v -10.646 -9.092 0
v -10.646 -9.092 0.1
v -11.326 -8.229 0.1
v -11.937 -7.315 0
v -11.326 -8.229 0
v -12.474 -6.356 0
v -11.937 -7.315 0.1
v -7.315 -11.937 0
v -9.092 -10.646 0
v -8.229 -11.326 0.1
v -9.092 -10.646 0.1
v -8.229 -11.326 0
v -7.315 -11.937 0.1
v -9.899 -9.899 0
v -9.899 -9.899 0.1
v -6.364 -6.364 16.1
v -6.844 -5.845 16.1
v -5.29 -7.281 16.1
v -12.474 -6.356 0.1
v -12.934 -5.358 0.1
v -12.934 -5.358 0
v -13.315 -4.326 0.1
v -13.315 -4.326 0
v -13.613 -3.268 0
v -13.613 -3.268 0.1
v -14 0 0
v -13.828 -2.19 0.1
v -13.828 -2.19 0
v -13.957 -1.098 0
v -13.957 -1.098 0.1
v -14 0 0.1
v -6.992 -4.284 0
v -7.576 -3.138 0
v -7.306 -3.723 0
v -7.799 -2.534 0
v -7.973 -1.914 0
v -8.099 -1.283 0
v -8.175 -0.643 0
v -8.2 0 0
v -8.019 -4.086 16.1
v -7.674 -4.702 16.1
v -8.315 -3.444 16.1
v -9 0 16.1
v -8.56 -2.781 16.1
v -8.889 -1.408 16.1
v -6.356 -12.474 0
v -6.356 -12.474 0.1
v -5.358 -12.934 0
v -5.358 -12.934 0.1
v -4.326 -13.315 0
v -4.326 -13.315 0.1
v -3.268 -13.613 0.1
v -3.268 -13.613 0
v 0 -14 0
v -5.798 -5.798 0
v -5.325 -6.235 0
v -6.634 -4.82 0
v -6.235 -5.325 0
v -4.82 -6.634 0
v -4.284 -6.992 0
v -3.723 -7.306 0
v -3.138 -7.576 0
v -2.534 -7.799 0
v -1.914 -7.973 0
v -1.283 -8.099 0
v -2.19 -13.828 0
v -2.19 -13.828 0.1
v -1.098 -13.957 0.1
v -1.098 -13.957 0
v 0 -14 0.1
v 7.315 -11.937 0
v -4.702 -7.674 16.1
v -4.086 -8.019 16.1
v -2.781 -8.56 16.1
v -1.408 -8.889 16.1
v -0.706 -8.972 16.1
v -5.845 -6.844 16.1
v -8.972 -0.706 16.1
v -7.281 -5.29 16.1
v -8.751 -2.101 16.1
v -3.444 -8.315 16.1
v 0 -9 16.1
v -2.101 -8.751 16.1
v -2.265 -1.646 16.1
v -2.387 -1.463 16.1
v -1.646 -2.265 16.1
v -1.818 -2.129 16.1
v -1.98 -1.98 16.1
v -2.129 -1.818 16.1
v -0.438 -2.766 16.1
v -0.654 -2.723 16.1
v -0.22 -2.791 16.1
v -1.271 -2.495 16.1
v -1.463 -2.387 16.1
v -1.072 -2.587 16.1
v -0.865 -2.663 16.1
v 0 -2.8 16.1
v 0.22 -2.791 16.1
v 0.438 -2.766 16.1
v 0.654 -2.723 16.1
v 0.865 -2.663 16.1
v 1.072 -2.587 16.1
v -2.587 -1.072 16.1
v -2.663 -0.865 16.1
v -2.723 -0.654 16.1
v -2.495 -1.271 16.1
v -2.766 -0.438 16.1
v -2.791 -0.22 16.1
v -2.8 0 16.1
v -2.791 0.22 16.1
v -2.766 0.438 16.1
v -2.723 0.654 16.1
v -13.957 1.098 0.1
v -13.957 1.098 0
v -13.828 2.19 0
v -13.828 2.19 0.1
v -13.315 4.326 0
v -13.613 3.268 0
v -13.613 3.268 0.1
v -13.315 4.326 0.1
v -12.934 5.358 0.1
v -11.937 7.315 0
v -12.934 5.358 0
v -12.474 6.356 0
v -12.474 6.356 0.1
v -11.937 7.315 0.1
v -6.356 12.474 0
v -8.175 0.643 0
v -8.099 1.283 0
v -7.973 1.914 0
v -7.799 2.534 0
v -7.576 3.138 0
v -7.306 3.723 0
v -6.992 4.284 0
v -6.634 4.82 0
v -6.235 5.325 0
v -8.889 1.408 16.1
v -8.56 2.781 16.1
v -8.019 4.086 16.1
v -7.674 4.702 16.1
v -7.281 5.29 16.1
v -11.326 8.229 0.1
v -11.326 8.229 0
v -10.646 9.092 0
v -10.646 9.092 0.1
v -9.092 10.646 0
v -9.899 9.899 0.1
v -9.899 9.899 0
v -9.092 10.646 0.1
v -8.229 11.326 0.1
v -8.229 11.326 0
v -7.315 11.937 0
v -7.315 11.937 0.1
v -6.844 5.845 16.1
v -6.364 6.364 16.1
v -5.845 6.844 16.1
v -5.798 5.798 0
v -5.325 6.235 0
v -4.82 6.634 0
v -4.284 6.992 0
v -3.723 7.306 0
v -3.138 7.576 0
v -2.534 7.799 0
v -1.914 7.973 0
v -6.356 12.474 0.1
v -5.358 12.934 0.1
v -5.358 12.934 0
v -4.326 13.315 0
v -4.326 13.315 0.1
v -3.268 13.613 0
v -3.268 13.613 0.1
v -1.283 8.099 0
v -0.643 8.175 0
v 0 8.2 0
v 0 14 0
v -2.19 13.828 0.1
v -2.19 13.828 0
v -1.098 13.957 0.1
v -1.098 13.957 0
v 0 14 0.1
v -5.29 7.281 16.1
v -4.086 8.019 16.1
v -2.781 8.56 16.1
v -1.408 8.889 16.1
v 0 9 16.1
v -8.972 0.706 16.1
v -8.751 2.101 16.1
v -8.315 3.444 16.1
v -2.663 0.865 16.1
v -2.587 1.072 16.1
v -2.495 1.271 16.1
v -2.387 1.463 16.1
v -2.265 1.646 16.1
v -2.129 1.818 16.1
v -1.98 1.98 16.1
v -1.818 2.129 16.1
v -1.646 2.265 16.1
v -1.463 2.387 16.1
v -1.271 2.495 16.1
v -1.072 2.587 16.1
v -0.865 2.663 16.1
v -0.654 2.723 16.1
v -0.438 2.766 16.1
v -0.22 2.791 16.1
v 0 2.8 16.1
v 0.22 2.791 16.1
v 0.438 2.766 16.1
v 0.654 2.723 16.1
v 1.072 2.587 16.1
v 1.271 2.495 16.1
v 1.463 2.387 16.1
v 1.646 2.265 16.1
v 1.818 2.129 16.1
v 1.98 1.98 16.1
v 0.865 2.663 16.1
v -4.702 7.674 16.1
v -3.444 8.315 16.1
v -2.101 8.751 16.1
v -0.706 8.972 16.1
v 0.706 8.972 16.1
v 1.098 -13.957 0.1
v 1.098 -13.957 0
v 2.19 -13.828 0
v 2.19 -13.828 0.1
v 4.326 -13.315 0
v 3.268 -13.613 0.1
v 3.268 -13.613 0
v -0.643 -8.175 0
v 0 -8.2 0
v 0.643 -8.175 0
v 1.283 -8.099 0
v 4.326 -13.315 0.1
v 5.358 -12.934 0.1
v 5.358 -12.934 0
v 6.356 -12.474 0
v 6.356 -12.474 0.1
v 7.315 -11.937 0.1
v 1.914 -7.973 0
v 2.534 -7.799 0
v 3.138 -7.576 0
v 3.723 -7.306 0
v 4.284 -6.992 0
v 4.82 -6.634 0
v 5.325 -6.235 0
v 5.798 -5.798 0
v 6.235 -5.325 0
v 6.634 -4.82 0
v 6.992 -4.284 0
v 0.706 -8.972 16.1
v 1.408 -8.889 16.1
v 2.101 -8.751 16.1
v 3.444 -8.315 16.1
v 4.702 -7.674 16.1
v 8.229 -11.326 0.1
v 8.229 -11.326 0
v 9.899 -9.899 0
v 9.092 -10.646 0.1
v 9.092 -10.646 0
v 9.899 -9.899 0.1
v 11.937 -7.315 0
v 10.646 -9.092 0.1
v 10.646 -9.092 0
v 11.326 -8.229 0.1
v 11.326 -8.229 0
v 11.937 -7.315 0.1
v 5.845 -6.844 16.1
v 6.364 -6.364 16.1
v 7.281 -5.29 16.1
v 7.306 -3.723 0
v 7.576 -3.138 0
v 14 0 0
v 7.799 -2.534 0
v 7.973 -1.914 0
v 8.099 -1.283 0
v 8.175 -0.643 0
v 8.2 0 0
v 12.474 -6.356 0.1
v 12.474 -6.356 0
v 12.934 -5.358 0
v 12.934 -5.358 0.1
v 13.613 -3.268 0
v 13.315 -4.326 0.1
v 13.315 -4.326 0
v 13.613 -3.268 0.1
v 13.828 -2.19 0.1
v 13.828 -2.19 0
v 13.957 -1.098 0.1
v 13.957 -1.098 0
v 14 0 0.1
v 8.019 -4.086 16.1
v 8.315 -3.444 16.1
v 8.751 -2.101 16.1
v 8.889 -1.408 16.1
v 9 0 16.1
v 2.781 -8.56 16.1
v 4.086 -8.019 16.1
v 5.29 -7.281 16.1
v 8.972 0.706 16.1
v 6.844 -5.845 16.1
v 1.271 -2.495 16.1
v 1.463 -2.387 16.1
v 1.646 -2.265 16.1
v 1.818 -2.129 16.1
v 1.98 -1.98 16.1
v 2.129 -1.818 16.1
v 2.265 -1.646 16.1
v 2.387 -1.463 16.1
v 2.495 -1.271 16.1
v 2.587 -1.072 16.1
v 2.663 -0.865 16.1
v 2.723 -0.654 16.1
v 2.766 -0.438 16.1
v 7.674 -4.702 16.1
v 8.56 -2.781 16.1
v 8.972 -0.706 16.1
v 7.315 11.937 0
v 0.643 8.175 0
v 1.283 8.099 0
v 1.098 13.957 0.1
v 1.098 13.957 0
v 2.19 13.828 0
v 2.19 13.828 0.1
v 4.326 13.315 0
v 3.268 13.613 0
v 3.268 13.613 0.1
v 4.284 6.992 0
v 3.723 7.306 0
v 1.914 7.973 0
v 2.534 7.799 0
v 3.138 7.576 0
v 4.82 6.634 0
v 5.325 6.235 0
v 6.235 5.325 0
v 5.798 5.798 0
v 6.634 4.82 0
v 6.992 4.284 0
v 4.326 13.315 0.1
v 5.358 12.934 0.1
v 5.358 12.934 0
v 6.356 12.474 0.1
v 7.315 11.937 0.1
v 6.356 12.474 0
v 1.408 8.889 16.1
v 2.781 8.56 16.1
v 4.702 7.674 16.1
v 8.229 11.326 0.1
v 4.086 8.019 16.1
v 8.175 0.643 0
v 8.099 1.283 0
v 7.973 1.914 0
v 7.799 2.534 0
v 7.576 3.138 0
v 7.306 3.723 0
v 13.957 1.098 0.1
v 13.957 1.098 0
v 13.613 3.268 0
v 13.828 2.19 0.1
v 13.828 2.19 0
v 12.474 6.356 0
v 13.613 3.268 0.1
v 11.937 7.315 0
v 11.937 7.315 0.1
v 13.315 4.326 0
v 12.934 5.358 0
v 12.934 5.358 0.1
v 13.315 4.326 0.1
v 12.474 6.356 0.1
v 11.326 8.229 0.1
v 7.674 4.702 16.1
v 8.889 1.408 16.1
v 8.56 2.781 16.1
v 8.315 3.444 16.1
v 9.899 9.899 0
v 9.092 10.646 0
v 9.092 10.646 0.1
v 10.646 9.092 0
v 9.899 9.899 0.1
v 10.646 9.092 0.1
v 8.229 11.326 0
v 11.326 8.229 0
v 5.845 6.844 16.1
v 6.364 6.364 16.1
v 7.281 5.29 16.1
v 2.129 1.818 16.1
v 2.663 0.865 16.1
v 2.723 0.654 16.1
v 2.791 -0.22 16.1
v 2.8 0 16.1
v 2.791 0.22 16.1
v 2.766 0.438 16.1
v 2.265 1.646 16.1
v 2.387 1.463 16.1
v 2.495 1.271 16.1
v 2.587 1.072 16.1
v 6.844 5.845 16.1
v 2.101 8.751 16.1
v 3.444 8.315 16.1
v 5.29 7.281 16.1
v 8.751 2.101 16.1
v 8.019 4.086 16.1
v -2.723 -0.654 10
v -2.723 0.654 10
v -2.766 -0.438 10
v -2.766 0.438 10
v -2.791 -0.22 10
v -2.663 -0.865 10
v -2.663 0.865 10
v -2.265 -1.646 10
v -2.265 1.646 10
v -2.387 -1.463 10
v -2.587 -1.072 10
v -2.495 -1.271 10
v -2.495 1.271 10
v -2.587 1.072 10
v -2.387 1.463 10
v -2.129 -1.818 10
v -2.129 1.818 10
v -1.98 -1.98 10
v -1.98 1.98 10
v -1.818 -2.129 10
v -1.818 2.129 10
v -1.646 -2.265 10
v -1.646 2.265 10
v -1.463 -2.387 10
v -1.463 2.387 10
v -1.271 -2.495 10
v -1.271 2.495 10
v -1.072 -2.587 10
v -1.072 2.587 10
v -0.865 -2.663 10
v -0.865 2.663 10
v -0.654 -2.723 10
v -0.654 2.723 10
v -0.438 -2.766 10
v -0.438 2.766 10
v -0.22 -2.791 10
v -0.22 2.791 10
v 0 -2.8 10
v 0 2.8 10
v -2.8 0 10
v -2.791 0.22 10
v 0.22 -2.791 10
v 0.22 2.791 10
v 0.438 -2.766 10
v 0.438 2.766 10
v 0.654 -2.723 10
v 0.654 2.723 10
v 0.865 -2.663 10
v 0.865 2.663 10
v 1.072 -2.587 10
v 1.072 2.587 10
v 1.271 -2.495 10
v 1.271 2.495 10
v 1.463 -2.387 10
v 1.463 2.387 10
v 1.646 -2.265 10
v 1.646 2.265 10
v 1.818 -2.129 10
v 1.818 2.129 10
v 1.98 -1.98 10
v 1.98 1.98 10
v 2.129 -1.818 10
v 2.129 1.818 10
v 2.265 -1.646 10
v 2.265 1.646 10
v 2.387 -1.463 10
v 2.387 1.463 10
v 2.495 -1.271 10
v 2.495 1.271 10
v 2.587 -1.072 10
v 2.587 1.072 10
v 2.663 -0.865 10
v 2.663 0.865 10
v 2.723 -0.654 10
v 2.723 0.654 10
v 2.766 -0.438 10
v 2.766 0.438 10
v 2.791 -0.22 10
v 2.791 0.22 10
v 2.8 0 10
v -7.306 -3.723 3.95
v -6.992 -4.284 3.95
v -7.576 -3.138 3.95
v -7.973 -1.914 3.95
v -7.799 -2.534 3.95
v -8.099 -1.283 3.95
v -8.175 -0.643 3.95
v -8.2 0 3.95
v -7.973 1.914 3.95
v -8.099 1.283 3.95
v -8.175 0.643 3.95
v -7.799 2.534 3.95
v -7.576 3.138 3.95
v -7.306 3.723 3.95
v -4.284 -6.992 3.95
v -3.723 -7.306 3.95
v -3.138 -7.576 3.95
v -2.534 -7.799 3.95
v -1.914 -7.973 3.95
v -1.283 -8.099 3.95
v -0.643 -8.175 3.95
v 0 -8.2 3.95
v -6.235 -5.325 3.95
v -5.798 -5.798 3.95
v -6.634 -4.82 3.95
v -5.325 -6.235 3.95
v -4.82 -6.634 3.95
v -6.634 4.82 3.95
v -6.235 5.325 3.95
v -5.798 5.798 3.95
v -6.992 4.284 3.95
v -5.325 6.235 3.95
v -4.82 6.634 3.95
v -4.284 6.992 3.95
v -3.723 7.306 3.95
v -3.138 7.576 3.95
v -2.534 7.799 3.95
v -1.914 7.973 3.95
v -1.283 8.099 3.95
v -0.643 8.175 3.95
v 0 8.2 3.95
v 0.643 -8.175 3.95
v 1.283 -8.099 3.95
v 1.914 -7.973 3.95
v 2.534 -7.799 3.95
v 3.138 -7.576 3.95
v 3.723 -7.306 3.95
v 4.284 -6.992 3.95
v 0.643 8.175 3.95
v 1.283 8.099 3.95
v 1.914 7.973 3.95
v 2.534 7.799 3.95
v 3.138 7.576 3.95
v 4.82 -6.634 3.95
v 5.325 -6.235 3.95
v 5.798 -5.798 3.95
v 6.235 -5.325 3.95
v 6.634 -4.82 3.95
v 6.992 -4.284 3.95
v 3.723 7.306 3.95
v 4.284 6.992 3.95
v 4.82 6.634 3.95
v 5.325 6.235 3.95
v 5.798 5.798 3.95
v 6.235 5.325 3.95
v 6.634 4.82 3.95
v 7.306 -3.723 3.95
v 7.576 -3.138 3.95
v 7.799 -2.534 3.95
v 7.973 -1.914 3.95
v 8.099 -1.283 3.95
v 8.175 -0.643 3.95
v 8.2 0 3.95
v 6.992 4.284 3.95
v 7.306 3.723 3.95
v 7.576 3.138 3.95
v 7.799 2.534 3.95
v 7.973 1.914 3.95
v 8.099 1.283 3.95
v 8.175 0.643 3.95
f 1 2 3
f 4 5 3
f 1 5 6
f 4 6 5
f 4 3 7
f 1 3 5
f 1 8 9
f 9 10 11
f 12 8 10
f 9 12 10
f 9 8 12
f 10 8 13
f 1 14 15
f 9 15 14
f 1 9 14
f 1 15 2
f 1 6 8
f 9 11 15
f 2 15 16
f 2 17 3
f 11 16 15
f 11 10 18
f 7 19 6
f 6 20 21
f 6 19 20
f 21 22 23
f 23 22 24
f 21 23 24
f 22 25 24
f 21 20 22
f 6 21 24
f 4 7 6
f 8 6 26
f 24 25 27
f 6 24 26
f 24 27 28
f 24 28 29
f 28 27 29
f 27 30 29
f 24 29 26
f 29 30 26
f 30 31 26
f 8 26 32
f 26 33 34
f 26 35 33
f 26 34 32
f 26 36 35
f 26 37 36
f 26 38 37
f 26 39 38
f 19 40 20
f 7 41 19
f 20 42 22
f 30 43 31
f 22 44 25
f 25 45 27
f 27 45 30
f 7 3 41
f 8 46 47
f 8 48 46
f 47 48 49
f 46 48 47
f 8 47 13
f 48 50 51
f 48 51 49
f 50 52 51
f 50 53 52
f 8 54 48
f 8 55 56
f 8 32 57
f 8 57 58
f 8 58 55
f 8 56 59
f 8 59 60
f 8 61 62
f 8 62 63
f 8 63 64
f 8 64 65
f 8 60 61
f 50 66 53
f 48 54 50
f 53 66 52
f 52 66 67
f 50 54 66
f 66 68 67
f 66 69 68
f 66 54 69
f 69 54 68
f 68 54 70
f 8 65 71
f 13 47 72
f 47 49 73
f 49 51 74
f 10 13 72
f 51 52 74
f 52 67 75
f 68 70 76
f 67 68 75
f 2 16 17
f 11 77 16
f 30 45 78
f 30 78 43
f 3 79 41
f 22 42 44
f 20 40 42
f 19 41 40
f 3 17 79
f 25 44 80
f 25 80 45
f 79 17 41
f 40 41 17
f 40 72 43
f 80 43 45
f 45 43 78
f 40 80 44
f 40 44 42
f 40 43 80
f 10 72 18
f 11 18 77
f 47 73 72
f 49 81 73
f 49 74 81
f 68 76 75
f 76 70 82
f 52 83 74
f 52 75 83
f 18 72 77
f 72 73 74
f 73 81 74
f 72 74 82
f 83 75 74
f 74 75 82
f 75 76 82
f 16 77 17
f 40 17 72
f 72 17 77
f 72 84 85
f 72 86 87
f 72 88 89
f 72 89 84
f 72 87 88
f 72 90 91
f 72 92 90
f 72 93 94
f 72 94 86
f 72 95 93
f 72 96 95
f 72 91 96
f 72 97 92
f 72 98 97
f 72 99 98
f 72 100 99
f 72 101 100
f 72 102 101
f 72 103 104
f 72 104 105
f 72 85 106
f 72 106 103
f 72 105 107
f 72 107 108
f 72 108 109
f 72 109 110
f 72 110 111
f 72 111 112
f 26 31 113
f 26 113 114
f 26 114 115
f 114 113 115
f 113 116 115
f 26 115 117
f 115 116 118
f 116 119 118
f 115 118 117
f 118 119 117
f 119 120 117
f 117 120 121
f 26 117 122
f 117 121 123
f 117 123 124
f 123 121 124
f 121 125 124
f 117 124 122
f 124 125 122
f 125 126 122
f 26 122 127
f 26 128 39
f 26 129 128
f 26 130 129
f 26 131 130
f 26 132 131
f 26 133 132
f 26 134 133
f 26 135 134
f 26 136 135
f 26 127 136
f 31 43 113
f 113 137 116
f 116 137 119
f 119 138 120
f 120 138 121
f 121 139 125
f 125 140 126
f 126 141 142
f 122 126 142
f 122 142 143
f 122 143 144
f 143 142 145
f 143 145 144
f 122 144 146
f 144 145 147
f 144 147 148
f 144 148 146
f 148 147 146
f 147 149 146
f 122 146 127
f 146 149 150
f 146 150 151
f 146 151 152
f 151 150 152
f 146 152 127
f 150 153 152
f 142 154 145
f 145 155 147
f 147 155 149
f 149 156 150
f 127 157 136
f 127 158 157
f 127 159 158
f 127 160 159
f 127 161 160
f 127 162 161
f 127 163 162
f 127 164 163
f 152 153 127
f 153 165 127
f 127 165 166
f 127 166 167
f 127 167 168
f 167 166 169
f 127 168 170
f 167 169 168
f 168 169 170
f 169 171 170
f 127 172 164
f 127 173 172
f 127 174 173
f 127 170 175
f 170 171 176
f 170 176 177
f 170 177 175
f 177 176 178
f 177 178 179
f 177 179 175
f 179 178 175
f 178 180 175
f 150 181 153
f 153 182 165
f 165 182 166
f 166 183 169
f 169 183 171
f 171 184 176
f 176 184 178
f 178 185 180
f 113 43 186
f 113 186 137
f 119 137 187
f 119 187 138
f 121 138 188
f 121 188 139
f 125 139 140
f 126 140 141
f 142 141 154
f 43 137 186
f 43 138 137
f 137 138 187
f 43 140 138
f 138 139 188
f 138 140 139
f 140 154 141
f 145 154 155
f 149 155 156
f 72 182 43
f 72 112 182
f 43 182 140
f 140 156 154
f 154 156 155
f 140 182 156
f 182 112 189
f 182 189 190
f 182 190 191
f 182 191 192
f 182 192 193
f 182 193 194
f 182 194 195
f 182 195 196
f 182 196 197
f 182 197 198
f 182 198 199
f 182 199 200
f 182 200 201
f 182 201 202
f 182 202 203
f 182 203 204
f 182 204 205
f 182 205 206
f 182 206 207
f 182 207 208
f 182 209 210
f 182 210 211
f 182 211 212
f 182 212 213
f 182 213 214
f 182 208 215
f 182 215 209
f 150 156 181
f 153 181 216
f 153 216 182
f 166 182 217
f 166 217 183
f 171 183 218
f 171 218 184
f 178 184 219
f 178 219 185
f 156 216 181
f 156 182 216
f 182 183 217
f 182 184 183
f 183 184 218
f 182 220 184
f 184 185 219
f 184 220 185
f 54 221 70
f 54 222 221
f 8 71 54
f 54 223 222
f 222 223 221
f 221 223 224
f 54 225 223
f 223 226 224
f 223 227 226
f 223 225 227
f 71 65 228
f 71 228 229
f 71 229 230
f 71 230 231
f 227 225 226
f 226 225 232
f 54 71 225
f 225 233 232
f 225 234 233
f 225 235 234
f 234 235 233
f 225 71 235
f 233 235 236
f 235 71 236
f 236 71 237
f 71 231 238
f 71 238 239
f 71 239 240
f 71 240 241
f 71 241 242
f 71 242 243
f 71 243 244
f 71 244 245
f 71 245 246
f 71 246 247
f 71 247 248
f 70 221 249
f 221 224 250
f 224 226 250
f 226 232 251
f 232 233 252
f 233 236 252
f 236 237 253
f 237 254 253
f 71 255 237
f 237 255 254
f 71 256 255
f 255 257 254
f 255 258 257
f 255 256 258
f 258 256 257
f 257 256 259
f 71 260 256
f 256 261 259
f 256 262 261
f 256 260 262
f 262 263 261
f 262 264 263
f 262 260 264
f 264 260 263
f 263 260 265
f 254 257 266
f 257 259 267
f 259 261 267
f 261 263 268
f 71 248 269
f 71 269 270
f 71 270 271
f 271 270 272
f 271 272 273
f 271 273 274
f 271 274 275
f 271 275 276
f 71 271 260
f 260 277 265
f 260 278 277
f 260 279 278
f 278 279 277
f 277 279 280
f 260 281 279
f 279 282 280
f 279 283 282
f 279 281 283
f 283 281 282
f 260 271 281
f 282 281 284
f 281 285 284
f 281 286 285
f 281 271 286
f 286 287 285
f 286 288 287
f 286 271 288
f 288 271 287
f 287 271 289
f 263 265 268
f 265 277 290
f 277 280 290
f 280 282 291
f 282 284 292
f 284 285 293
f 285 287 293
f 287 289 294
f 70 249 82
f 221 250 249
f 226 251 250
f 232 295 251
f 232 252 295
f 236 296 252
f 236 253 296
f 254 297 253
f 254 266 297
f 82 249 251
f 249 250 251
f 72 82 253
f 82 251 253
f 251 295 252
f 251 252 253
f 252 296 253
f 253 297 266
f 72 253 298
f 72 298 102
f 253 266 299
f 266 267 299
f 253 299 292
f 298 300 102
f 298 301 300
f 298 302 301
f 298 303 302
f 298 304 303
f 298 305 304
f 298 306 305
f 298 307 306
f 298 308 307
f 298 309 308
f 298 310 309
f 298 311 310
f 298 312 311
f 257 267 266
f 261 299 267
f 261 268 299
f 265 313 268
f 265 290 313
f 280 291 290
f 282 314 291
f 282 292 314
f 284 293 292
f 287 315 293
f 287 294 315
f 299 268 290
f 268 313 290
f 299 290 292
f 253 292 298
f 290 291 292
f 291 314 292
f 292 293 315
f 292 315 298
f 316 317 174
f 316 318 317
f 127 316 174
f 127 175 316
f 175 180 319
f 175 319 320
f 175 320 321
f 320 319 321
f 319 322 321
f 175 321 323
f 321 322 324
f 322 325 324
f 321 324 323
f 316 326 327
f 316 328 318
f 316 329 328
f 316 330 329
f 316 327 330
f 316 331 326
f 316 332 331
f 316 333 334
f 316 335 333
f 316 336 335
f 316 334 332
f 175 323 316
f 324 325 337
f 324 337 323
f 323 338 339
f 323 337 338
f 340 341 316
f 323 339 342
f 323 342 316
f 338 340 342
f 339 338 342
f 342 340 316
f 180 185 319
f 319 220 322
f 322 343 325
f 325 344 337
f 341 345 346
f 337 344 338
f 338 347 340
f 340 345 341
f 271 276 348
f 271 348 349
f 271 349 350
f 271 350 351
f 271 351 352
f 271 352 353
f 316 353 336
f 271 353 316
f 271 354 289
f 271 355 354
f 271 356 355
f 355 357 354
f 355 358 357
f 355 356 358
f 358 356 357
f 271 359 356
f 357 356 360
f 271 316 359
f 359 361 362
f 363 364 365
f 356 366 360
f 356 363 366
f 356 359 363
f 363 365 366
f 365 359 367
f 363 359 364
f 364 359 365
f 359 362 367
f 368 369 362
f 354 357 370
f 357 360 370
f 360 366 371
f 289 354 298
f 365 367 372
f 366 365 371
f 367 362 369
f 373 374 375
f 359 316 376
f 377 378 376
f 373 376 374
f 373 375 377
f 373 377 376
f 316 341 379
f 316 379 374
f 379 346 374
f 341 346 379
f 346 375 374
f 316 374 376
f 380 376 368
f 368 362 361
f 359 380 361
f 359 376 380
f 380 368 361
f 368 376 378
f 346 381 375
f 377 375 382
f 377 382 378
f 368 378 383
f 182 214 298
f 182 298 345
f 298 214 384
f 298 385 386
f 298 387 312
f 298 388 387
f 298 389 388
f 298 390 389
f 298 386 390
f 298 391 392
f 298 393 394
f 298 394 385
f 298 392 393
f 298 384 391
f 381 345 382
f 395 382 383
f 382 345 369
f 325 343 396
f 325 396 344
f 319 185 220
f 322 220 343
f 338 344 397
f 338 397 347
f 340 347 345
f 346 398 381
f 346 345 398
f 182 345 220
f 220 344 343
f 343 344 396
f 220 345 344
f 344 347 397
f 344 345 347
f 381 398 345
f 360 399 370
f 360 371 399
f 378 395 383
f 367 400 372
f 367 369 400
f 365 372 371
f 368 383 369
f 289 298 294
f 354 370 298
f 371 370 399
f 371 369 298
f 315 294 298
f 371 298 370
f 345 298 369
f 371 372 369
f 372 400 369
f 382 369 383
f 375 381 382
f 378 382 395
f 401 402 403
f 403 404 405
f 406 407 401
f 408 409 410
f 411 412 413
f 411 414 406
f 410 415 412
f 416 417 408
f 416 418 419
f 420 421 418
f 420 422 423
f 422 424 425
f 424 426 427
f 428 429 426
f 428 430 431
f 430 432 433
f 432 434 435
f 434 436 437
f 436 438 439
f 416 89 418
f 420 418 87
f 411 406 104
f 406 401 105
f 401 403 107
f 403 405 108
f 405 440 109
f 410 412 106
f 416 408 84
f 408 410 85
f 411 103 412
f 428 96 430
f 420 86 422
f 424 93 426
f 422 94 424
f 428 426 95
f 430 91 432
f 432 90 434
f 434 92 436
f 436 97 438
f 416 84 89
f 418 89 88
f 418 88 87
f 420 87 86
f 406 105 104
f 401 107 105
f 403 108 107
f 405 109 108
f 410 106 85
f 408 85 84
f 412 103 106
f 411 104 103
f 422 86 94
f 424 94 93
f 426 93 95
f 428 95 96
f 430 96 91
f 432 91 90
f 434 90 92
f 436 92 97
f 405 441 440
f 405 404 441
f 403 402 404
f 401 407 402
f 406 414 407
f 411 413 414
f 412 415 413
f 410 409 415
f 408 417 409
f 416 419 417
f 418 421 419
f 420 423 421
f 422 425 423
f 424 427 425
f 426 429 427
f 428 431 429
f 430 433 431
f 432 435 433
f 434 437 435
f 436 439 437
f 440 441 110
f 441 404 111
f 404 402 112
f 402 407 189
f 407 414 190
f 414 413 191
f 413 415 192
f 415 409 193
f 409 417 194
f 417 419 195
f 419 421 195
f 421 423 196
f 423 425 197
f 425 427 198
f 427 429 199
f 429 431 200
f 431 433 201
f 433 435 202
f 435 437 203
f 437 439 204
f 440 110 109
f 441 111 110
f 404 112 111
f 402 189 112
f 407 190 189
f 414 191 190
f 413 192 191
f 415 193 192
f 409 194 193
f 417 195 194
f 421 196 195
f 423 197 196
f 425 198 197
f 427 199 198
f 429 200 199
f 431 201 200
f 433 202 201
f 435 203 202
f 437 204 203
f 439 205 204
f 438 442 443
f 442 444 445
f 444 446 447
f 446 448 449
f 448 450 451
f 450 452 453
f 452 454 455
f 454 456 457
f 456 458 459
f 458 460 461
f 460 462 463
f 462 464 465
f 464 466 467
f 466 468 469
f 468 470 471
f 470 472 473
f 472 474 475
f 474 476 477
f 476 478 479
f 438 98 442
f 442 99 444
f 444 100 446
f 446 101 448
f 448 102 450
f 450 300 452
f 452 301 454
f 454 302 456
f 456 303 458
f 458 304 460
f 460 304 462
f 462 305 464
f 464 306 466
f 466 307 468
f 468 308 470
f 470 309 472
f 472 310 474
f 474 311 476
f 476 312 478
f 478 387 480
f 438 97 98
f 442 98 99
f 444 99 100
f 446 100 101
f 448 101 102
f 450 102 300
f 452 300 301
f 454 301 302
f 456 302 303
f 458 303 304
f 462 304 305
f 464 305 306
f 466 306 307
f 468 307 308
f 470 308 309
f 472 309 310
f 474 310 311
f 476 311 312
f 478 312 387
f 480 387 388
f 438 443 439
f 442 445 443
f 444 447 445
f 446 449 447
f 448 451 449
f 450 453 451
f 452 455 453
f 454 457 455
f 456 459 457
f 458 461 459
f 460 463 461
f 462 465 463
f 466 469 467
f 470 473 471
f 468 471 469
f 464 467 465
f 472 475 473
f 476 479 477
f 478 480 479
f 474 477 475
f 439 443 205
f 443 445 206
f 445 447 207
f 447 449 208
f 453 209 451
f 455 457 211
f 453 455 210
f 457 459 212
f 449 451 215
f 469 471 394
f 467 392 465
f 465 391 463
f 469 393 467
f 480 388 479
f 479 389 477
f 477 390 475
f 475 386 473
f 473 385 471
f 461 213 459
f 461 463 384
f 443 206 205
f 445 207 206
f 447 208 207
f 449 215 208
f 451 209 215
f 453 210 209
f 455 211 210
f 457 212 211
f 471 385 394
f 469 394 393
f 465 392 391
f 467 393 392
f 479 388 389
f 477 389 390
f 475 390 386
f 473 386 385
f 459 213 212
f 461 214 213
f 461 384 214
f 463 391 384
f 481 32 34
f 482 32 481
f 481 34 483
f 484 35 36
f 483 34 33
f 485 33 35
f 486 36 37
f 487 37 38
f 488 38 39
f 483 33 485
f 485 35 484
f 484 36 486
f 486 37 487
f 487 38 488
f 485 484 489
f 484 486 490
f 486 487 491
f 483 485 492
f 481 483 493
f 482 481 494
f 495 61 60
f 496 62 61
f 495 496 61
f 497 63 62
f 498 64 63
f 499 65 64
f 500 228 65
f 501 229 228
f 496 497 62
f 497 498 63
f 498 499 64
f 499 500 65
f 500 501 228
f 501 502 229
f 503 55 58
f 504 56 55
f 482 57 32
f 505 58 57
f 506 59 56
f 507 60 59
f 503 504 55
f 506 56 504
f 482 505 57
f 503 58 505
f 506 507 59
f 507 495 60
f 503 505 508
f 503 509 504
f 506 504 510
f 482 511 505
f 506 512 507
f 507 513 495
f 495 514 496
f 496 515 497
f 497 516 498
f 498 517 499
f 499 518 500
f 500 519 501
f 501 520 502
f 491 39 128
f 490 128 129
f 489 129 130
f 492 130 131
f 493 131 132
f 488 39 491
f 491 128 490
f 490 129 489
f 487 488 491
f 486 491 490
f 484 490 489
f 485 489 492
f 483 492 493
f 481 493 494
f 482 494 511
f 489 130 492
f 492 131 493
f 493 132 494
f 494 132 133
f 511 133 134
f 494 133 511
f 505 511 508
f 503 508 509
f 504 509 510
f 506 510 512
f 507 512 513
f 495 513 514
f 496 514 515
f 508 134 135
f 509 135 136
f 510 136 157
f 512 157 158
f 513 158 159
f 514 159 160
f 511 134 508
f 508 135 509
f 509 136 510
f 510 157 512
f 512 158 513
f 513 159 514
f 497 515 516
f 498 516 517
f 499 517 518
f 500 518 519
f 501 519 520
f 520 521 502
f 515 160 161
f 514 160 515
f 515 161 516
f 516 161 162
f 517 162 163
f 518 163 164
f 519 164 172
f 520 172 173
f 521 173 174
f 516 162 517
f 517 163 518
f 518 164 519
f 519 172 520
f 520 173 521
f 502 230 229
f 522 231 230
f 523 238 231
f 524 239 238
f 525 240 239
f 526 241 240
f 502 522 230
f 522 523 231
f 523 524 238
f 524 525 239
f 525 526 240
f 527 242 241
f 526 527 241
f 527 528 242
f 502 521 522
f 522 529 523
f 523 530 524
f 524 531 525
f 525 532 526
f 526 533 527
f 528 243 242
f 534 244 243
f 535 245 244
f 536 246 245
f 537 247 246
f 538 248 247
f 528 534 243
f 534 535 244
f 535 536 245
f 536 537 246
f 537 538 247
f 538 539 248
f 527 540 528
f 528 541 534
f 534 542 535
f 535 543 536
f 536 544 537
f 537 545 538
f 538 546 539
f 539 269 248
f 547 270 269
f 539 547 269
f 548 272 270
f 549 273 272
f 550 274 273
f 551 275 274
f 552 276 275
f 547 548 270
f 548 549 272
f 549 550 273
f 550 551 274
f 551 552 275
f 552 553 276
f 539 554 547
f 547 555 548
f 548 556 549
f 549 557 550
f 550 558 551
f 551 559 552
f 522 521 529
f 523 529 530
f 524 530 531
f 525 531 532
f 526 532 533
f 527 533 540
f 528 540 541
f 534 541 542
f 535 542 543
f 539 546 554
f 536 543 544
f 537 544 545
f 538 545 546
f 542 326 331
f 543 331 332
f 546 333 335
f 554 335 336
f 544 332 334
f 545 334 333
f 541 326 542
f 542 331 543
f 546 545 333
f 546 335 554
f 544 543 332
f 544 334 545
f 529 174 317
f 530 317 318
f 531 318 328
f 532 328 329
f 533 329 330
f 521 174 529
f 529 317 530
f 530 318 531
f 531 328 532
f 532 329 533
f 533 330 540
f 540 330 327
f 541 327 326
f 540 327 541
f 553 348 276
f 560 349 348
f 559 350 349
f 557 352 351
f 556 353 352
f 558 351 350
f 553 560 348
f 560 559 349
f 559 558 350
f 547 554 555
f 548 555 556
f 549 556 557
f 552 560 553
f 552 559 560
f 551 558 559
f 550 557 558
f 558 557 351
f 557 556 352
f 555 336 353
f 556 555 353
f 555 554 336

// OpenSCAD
// ============================================================================
// Vibration-isolating foot — RSD/Jetson box -> Pelican floor  (print 4, PLA)
// ----------------------------------------------------------------------------
// Bolts to a box bottom corner (M4 heat-set insert, top). A Ø16 rubber bumper
// presses into the bottom recess; the box rests on the four rubber feet on the
// Pelican floor and the case lid/foam retains it — so vibration is damped by
// the rubber, not transmitted through a rigid bolt.
// ============================================================================

$fn = 80;
BASE_D = 28;      // wide base for stability
TOP_D  = 18;      // tapers up to the box
H      = 16;      // standoff height
INS_D  = 5.6;     // M4 heat-set insert bore (top, to box)
INS_H  = 6;
RUB_D  = 16.4;    // stick-on rubber bumper recess (bottom)
RUB_H  = 4;

module iso_foot() {
  difference() {
    hull() {                                         // tapered body
      cylinder(d = BASE_D, h = 0.1);
      translate([0, 0, H]) cylinder(d = TOP_D, h = 0.1);
    }
    translate([0, 0, H - INS_H]) cylinder(d = INS_D, h = INS_H + 0.1);   // box M4 insert
    translate([0, 0, -0.05])     cylinder(d = RUB_D, h = RUB_H);          // rubber bumper recess
  }
}

iso_foot();
